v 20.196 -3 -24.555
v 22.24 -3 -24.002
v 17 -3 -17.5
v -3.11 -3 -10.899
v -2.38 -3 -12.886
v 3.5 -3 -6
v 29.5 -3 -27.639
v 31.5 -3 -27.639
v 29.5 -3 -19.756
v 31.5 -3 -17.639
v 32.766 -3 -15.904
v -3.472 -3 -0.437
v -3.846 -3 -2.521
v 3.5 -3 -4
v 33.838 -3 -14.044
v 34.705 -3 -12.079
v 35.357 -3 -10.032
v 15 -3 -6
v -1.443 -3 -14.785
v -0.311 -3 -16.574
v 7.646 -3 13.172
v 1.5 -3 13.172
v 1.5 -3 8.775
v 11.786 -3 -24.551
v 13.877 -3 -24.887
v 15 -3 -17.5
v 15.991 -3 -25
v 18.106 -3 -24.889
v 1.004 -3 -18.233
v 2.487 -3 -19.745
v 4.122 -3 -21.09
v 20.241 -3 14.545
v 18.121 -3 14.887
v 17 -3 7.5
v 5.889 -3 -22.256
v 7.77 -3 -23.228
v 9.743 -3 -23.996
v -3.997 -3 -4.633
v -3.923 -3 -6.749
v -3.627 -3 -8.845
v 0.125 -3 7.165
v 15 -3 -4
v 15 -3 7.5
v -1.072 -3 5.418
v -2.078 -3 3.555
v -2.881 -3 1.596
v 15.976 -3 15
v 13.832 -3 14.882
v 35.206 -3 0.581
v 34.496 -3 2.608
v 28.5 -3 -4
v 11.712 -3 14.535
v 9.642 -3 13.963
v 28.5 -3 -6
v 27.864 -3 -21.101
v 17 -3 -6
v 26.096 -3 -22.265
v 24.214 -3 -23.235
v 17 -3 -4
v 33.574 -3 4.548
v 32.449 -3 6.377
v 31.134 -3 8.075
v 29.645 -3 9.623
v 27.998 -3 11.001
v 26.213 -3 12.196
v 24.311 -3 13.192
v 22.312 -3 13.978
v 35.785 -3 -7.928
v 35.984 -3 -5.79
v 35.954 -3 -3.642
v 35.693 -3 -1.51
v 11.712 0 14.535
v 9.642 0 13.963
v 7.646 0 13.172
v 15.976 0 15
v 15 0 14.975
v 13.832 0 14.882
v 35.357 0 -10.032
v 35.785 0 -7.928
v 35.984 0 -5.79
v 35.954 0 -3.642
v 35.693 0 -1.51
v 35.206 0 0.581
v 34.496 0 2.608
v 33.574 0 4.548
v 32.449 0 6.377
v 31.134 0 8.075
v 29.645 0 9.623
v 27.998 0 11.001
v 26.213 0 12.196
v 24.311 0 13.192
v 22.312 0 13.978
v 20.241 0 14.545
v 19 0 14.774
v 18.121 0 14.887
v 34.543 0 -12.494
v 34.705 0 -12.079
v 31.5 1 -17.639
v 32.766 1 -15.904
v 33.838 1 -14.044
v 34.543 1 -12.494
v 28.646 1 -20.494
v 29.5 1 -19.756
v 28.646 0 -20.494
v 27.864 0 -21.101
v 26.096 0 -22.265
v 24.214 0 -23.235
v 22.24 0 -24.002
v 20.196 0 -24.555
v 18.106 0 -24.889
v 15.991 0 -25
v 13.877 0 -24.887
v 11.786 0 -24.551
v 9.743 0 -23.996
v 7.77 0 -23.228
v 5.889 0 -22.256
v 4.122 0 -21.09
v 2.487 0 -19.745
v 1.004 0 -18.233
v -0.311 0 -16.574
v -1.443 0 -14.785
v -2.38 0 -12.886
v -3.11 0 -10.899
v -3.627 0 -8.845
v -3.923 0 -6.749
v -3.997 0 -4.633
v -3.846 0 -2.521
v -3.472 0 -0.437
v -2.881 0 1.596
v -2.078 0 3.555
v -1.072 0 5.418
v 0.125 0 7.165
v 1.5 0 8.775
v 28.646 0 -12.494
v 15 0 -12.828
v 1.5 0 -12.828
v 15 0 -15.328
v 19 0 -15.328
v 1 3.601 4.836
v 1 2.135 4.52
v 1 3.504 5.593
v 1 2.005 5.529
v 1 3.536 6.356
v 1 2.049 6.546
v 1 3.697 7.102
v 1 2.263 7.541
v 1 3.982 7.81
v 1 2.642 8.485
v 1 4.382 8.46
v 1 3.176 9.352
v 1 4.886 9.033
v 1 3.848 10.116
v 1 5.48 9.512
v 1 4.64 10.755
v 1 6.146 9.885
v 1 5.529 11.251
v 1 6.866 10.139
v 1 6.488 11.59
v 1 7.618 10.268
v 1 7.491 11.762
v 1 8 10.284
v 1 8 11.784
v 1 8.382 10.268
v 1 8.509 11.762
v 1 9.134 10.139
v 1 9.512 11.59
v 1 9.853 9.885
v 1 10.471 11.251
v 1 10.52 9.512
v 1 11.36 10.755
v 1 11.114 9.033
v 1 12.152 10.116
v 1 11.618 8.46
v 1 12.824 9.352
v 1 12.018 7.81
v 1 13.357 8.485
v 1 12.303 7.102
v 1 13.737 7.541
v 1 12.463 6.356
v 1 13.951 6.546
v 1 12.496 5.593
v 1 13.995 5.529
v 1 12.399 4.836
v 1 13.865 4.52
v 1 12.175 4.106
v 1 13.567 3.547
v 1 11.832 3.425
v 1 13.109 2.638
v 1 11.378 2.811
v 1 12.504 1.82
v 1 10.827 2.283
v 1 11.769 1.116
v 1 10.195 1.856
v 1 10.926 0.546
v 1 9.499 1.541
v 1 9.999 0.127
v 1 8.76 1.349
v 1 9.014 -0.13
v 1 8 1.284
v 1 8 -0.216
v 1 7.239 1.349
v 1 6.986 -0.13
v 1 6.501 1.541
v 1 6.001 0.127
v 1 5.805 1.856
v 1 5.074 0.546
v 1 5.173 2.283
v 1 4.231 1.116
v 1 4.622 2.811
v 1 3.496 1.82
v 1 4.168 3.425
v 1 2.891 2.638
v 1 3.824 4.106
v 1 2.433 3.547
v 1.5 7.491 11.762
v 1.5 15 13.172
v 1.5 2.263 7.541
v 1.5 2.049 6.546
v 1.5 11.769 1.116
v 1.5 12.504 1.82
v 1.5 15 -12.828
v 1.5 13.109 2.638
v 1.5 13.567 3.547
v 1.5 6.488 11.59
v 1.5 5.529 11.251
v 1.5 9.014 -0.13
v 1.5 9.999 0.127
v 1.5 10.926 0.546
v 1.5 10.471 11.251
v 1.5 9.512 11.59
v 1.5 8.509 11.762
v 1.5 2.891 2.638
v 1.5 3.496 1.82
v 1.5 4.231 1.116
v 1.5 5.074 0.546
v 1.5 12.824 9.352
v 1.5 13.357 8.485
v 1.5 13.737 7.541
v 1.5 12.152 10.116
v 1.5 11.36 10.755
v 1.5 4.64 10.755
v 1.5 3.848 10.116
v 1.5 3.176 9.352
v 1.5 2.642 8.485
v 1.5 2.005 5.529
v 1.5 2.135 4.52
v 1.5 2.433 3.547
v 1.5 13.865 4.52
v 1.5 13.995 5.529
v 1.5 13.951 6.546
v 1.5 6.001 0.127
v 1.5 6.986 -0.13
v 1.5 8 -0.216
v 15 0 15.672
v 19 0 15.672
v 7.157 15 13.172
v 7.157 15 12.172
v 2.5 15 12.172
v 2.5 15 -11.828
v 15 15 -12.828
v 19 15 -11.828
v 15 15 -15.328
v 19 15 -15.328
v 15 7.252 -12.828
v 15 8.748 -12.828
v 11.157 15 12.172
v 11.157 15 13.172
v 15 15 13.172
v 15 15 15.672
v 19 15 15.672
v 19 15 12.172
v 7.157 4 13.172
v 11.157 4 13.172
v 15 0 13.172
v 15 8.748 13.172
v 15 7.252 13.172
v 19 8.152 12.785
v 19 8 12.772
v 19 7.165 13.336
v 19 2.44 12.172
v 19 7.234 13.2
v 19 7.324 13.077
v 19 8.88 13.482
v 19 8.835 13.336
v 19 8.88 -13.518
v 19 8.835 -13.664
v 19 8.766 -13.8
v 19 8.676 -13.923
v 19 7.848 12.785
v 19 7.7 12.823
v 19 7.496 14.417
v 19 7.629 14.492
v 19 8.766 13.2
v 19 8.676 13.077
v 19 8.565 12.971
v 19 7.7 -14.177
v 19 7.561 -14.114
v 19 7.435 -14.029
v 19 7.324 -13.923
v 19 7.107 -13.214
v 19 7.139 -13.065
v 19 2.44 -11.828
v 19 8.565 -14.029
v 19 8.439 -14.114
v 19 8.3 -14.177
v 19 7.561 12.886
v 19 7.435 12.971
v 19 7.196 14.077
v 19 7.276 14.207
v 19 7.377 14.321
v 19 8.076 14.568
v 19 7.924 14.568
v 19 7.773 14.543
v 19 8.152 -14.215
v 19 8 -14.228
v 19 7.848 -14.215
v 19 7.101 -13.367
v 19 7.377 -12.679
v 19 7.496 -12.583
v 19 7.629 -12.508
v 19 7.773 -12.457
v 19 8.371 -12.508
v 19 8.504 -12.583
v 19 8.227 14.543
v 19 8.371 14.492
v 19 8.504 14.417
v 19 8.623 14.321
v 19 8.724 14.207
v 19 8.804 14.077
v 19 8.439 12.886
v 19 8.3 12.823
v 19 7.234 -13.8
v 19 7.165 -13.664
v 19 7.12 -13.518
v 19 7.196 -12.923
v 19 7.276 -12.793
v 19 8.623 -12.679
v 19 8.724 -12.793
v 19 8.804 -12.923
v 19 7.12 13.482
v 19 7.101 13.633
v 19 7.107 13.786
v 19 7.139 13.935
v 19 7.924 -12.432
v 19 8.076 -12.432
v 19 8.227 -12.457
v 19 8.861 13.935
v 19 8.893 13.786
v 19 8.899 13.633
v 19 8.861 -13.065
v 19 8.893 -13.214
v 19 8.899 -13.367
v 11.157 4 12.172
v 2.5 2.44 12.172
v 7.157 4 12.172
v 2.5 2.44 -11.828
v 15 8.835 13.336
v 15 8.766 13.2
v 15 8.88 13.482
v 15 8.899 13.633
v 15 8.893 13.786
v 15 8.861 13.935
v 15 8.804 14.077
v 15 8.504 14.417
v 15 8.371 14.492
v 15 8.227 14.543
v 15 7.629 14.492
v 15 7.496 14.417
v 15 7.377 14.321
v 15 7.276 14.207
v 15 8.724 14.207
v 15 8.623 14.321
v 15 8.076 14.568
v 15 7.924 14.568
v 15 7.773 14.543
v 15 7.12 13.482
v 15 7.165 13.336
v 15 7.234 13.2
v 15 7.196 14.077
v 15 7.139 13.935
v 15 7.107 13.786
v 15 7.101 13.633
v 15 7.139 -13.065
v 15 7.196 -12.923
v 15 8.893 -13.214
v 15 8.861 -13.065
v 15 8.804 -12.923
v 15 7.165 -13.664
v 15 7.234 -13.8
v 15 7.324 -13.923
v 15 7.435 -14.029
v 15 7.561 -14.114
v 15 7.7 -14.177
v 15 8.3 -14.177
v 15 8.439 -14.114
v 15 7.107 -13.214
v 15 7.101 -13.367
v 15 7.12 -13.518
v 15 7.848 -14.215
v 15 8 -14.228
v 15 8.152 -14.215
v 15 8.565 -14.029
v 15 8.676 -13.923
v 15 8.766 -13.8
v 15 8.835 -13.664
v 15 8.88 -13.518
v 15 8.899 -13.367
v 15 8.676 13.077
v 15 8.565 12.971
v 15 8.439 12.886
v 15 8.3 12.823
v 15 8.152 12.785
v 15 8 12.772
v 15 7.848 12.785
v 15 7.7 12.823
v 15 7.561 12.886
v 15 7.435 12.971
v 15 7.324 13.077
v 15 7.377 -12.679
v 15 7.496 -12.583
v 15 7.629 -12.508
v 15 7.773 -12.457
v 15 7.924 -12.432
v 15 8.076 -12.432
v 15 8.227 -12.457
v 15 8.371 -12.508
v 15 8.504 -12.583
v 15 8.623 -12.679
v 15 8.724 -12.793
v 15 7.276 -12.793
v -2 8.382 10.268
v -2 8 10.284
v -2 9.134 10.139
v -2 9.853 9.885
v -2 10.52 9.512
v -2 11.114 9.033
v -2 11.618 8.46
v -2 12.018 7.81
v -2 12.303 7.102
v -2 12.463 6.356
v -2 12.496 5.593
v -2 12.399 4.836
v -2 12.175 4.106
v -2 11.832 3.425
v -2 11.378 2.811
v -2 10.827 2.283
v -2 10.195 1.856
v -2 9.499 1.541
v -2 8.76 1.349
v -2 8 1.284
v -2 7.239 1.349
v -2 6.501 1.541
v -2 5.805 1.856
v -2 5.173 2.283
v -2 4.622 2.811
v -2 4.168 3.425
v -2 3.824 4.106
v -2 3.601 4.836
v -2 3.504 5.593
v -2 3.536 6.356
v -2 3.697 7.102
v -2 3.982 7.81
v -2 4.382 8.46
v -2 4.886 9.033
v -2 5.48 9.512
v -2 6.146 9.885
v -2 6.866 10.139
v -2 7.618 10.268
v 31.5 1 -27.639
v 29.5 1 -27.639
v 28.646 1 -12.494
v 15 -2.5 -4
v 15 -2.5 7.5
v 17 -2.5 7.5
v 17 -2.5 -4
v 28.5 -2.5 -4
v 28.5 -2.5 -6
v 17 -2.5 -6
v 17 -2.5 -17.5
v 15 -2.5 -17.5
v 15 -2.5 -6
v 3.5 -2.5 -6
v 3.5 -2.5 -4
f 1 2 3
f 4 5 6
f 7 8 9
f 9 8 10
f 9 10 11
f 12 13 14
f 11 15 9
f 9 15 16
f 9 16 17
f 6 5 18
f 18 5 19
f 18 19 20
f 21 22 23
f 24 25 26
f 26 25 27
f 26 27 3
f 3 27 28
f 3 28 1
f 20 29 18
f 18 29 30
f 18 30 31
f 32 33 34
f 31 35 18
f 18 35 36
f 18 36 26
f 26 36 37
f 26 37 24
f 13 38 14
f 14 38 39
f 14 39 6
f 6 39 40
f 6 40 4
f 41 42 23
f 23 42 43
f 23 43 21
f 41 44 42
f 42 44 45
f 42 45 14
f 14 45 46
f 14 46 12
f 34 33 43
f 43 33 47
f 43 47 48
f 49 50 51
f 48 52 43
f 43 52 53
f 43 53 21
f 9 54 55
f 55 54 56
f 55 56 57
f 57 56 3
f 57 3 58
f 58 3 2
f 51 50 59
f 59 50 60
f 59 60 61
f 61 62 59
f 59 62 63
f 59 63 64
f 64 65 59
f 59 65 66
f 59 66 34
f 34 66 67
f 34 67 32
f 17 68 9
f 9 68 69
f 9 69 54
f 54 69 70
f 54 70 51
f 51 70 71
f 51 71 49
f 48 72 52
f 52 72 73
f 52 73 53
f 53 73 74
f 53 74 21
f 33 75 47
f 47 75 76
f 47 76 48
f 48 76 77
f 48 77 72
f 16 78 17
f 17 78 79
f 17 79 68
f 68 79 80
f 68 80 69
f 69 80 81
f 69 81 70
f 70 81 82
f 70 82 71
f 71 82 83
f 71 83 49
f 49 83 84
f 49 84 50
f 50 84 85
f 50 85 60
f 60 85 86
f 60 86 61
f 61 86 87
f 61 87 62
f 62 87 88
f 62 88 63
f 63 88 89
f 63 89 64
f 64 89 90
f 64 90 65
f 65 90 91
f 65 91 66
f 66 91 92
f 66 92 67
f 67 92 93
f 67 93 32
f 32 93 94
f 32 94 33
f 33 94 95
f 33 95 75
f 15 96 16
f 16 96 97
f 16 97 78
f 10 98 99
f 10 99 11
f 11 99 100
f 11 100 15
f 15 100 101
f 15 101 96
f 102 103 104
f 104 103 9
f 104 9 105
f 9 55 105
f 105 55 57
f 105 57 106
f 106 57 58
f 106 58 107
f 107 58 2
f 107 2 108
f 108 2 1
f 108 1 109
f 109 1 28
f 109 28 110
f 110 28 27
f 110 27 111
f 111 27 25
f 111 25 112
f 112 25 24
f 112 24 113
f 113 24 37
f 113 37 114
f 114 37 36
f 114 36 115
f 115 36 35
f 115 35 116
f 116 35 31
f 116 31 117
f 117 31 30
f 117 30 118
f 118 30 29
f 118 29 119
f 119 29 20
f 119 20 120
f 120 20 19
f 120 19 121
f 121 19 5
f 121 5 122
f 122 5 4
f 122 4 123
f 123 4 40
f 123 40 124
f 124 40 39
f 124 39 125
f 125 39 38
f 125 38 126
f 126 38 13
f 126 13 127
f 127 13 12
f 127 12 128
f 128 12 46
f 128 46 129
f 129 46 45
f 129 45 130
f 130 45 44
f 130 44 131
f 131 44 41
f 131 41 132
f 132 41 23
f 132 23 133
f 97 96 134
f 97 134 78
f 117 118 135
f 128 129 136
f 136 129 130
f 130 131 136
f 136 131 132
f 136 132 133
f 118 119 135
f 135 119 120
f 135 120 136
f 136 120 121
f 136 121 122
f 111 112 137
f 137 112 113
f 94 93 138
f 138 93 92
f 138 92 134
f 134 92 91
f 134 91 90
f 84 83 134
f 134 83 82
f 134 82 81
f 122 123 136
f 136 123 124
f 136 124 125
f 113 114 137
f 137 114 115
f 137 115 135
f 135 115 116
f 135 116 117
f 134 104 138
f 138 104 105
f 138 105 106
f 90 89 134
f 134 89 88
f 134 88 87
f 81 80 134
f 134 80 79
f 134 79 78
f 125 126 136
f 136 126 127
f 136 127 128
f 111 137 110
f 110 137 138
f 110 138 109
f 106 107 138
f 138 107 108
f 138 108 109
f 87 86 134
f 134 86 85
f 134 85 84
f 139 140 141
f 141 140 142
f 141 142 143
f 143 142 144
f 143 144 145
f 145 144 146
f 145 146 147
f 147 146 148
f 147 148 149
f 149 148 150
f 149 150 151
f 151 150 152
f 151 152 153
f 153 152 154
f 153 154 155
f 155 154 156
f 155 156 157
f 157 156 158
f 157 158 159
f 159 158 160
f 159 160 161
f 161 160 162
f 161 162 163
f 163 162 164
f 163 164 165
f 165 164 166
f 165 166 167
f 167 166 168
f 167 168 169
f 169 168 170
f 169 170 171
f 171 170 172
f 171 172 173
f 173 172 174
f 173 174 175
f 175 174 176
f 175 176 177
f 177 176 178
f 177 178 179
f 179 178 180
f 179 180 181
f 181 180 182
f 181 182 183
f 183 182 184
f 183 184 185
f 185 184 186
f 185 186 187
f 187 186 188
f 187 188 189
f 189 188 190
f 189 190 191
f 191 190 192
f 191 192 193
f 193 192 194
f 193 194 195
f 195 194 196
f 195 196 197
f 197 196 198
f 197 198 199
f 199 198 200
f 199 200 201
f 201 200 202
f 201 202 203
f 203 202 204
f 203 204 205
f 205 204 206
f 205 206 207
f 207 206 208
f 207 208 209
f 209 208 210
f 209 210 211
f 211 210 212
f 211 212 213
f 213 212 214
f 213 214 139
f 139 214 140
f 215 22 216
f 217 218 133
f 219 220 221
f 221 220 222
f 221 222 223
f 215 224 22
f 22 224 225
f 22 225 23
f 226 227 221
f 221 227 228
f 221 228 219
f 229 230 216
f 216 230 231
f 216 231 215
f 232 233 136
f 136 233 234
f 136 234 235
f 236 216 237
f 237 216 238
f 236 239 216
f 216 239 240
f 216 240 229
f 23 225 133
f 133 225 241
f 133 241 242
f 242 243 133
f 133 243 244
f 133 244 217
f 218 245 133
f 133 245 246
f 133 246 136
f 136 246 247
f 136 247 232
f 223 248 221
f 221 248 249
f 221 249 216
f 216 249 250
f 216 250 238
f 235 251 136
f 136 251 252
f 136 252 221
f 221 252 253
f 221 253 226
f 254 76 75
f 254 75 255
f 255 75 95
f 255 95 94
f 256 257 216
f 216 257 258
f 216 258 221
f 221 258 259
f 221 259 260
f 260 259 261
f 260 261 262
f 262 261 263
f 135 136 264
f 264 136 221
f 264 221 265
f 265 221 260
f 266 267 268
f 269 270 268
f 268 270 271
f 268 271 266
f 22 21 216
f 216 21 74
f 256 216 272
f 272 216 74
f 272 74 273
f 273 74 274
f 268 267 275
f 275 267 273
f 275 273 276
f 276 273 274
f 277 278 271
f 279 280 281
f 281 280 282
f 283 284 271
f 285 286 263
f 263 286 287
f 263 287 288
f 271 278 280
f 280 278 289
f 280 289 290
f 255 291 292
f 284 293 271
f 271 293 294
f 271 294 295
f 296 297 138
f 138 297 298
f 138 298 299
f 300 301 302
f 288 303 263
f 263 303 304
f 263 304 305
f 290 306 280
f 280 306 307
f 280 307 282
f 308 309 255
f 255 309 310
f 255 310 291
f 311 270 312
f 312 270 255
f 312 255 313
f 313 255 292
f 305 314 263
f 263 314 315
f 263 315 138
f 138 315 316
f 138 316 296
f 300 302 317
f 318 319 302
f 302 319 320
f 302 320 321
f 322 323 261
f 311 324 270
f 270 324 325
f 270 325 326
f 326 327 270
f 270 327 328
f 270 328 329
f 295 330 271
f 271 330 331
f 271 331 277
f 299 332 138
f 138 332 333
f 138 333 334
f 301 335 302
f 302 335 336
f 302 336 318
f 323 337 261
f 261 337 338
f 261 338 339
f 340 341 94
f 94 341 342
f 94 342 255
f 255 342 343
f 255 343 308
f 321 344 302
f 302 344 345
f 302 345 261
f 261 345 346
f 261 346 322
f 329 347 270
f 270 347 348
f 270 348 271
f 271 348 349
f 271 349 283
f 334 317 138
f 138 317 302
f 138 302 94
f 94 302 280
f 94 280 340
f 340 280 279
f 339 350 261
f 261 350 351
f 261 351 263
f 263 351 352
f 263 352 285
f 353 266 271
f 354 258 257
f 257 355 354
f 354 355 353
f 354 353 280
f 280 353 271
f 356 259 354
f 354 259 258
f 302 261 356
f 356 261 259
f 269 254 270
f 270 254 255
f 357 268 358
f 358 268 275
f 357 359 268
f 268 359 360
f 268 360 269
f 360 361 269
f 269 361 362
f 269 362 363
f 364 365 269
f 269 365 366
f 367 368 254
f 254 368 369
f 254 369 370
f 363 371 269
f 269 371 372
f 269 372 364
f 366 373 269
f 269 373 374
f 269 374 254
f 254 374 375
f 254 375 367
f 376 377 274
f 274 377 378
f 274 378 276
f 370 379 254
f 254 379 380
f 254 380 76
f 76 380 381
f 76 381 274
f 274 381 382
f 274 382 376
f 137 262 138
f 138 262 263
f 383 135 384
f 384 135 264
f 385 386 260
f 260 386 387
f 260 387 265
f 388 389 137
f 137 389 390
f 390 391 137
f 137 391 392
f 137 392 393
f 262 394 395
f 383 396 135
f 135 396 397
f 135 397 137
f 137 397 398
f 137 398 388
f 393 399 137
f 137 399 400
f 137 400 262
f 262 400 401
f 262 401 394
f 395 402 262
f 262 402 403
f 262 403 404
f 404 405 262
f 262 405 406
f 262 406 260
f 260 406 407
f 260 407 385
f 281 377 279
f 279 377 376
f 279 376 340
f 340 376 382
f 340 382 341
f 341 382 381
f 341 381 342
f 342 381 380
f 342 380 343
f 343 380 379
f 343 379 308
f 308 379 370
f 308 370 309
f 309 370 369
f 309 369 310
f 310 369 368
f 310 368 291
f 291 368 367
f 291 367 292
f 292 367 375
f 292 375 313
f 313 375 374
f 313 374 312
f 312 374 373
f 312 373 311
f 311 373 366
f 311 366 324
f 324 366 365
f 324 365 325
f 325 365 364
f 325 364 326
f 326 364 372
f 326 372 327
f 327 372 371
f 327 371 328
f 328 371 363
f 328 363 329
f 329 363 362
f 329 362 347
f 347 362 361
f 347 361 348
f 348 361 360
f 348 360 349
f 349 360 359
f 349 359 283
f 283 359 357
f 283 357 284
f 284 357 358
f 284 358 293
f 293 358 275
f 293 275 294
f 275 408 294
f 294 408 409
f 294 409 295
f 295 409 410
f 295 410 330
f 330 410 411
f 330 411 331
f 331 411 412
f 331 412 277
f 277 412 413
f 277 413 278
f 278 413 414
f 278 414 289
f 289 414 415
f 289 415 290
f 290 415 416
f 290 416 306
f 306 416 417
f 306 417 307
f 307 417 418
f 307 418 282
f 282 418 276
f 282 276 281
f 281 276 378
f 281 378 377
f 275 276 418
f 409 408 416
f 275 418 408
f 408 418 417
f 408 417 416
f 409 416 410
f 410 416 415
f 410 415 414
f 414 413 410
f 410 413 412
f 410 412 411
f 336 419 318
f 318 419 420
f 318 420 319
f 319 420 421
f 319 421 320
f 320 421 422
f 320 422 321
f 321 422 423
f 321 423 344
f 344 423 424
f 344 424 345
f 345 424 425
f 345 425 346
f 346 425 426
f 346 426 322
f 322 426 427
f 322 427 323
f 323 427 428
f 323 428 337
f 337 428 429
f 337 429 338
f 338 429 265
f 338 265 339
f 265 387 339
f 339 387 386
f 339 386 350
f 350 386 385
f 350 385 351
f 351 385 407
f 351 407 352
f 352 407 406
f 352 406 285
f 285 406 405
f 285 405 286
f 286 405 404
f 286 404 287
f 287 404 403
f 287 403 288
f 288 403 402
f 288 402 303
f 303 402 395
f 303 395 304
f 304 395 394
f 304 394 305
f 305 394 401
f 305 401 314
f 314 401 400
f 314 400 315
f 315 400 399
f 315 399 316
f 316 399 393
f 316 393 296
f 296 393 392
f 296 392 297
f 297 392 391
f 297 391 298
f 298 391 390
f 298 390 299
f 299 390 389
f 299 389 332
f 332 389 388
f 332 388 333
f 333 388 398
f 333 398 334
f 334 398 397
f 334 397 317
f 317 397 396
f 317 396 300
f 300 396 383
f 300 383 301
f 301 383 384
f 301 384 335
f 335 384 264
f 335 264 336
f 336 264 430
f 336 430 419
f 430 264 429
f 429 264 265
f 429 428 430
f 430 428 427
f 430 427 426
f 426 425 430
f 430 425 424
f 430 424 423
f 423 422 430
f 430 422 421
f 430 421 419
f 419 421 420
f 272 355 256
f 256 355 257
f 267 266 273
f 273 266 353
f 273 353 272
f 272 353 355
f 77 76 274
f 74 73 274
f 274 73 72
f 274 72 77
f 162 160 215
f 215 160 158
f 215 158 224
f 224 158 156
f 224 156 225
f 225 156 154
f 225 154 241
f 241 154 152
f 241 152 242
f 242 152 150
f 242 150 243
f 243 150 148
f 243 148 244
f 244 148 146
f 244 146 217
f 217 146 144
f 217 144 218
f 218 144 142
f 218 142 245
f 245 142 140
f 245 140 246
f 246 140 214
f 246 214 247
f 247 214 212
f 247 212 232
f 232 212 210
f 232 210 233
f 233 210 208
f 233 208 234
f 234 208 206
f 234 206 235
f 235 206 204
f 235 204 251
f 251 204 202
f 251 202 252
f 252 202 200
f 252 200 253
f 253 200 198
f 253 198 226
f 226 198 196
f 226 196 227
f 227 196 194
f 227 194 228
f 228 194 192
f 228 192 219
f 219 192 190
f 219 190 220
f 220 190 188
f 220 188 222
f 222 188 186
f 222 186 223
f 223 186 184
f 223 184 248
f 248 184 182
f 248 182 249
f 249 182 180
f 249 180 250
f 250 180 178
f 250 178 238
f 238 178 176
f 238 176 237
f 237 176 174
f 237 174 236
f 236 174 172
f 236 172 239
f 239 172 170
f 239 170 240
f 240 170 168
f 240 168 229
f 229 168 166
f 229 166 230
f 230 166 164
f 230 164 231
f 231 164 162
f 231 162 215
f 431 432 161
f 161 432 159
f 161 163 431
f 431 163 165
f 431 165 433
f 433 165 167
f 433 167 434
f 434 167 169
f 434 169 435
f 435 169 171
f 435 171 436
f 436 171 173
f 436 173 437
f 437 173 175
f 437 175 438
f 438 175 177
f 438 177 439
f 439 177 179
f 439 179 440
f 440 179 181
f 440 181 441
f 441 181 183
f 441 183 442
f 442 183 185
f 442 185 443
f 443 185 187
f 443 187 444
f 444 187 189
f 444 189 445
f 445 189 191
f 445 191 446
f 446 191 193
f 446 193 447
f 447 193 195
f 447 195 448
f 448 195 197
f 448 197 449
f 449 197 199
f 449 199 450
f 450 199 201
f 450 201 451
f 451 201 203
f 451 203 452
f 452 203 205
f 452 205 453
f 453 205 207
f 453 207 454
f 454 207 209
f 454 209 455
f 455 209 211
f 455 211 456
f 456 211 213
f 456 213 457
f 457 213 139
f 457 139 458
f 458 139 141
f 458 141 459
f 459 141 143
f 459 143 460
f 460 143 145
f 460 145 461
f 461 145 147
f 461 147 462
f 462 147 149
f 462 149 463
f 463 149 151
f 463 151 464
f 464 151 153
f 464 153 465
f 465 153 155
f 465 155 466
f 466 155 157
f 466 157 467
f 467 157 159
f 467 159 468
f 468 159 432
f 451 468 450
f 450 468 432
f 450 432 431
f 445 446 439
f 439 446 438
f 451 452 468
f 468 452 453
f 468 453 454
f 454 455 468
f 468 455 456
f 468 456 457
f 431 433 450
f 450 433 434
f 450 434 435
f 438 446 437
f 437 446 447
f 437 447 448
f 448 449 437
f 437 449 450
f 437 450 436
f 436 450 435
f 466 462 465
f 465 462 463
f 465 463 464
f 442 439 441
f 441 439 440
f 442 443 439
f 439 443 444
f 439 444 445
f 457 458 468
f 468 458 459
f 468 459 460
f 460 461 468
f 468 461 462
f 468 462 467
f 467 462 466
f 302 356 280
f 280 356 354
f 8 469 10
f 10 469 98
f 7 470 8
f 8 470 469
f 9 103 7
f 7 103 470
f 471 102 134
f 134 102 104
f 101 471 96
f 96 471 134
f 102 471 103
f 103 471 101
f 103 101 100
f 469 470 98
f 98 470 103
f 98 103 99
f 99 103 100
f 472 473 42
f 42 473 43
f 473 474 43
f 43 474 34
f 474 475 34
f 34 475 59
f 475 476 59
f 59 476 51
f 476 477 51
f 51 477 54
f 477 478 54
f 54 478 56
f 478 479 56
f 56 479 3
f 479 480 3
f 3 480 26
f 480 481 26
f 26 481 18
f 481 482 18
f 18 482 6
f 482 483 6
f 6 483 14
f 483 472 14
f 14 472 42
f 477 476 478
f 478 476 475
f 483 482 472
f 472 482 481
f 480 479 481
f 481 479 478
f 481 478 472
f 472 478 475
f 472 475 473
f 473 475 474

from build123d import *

# Parameters (mm, degrees)
P_IDAT_VYSUNUT_M1_DEPTH   = 15
ZAOBLIT1_R                = 7.5
SKICA6_R                  = 3.75
ODEBRAT_VYSUNUT_M4_DEPTH  = 5
SKICA7_R                  = 4.75
ODEBRAT_VYSUNUT_M5_DEPTH  = 5
P_IDAT_VYSUNUT_M2_DEPTH   = 15
SKICA10_W                 = 16.5
SKICA10_H                 = 24
ODEBRAT_VYSUNUT_M7_DEPTH  = 14
SKICA11_W                 = 2.5
SKICA11_H                 = 15
P_IDAT_VYSUNUT_M3_DEPTH   = 4
SKICA12_R                 = 0.9
ODEBRAT_VYSUNUT_M8_DEPTH  = 4
SKICA13_W                 = 4
SKICA13_H                 = 11
ODEBRAT_VYSUNUT_M9_DEPTH  = 4
SKICA15_W                 = 30.75
SKICA15_H                 = 32.5
ODEBRAT_VYSUNUT_M10_DEPTH = 30
SKICA16_R                 = 20
P_IDAT_VYSUNUT_M4_DEPTH   = 3
SKICA17_W                 = 1
SKICA17_H                 = 28
ODEBRAT_VYSUNUT_M11_DEPTH = 15
SKICA18_R                 = 6
P_IDAT_VYSUNUT_M5_DEPTH   = 0.5
SKICA19_R                 = 4.5
P_IDAT_VYSUNUT_M6_DEPTH   = 3
SKICA20_W                 = 16.5
SKICA20_H                 = 24
P_IDAT_VYSUNUT_M7_DEPTH   = 1.44
P_IDAT_VYSUNUT_M8_DEPTH   = 3
P_IDAT_START              = 1
P_IDAT_VYSUNUT_M9_DEPTH   = 1
P_IDAT_VYSUNUT_M10_DEPTH  = 3
SKICA24_R                 = 1
ODEBRAT_VYSUNUT_M12_DEPTH = 0.5
ODEBRAT_VYSUNUT_M14_DEPTH = 0.5


with BuildPart() as part:
    # Skica1 → Přidat vysunutím1 (new body)
    with BuildSketch(Plane(origin=(0, 0, 0), x_dir=(1, 0, 0), z_dir=(0, 1, 0))):
        Polygon((0, -11), (0, 11), (-3.25, 14.25), (-30.25, 14.25), (-30.25, 16.25), (-2.421572875, 16.25), (1, 12.828427125), (1, -12.828427125), (-2.421572875, -16.25), (-30.25, -16.25), (-30.25, -14.25), (-3.25, -14.25), align=None)
    extrude(amount=P_IDAT_VYSUNUT_M1_DEPTH)

    # Zaoblit1
    zaoblit1_edges = [part.edges().sort_by_distance(p)[0] for p in [
        (-30.25, 0, -15.25),
        (-30.25, 0, 15.25),
        (-30.25, 15, 15.25),
        (-30.25, 15, -15.25),
    ]]
    fillet(zaoblit1_edges, radius=ZAOBLIT1_R - 0.0001)  # a hair under: the kernel refuses the full size

    # Skica6 → Odebrat vysunutím4 (cut)
    with BuildSketch(Plane(origin=(0, 0, -16.25), x_dir=(-1, 0, 0), z_dir=(0, 0, -1))):
        with Locations((22.75, 7.5)):
            Circle(SKICA6_R)
    extrude(amount=-ODEBRAT_VYSUNUT_M4_DEPTH, mode=Mode.SUBTRACT)

    # Skica7 → Odebrat vysunutím5 (cut)
    with BuildSketch(Plane(origin=(0, 0, 14.25), x_dir=(-1, 0, 0), z_dir=(0, 0, -1))):
        with Locations((22.75, 7.5)):
            Circle(SKICA7_R)
    extrude(amount=-ODEBRAT_VYSUNUT_M5_DEPTH, mode=Mode.SUBTRACT)

    # Skica8 → Přidat vysunutím2 (add)
    with BuildSketch(Plane.XZ):
        Polygon((0.656854249, 13.171572875), (19, 13.171572875), (19, -12.828427125), (1, -12.828427125), (1, 12.828427125), align=None)
    extrude(amount=-P_IDAT_VYSUNUT_M2_DEPTH)

    # Skica10 → Odebrat vysunutím7 (cut)
    with BuildSketch(Plane(origin=(0, 15, 0), x_dir=(1, 0, 0), z_dir=(0, 1, 0))):
        with Locations((10.75, -0.171572875)):
            Rectangle(SKICA10_W, SKICA10_H)
    extrude(amount=-ODEBRAT_VYSUNUT_M7_DEPTH, mode=Mode.SUBTRACT)

    # Skica11 → Přidat vysunutím3 (add)
    with BuildSketch(Plane(origin=(19, 0, 0), x_dir=(0, 0, -1), z_dir=(1, 0, 0))):
        with Locations((-14.421572875, 7.5)):
            Rectangle(SKICA11_W, SKICA11_H)
        with Locations((14.078427125, 7.5)):
            Rectangle(SKICA11_W, SKICA11_H)
    extrude(amount=-P_IDAT_VYSUNUT_M3_DEPTH)

    # Skica12 → Odebrat vysunutím8 (cut)
    with BuildSketch(Plane(origin=(19, 0, 0), x_dir=(0, 0, -1), z_dir=(1, 0, 0))):
        with Locations((-13.671572875, 8)):
            Circle(SKICA12_R)
        with Locations((13.328427125, 8)):
            Circle(SKICA12_R)
    extrude(amount=-ODEBRAT_VYSUNUT_M8_DEPTH, mode=Mode.SUBTRACT)

    # Skica13 → Odebrat vysunutím9 (cut)
    with BuildSketch(Plane.XY.offset(13.171572875)):
        with Locations((9.156854249, 9.5)):
            Rectangle(SKICA13_W, SKICA13_H)
    extrude(amount=-ODEBRAT_VYSUNUT_M9_DEPTH, mode=Mode.SUBTRACT)

    # Skica15 → Odebrat vysunutím10 (cut)
    with BuildSketch(Plane(origin=(0, 15, 0), x_dir=(1, 0, 0), z_dir=(0, 1, 0))):
        with Locations((-14.875, 0)):
            Rectangle(SKICA15_W, SKICA15_H)
    extrude(amount=-ODEBRAT_VYSUNUT_M10_DEPTH, mode=Mode.SUBTRACT)

    # Skica16 → Přidat vysunutím4 (add)
    with BuildSketch(Plane.XZ):
        with Locations(Location((16, -5, 0), (0, 0, 92.865983983))):
            Circle(SKICA16_R)
    extrude(amount=P_IDAT_VYSUNUT_M4_DEPTH)

    # Skica17 → Odebrat vysunutím11 (cut)
    with BuildSketch(Plane(origin=(0, 15, 0), x_dir=(1, 0, 0), z_dir=(0, 1, 0))):
        with Locations((1, -0.671572875)):
            Rectangle(SKICA17_W, SKICA17_H)
    extrude(amount=-ODEBRAT_VYSUNUT_M11_DEPTH, mode=Mode.SUBTRACT)

    # Skica18 → Přidat vysunutím5 (add)
    with BuildSketch(Plane.ZY.offset(-1.5)):
        with Locations(Location((5.784090316, 7.999938585, 0), (0, 0, 180))):
            Circle(SKICA18_R)
    extrude(amount=P_IDAT_VYSUNUT_M5_DEPTH)

    # Skica19 → Přidat vysunutím6 (add)
    with BuildSketch(Plane.ZY.offset(-1)):
        with Locations((5.784090316, 7.999938585)):
            Circle(SKICA19_R)
    extrude(amount=P_IDAT_VYSUNUT_M6_DEPTH)

    # Skica20 → Přidat vysunutím7 (add)
    with BuildSketch(Plane(origin=(0, 1, 0), x_dir=(1, 0, 0), z_dir=(0, 1, 0))):
        with Locations((10.75, -0.171572875)):
            Rectangle(SKICA20_W, SKICA20_H)
    extrude(amount=P_IDAT_VYSUNUT_M7_DEPTH)

    # Skica21 → Přidat vysunutím8 (add)
    with BuildSketch(Plane(origin=(0, 0, 0), x_dir=(1, 0, 0), z_dir=(0, 1, 0))):
        with BuildLine():
            Line((29.5, 27.63922466), (31.5, 27.63922466))
            Line((31.5, 27.63922466), (31.5, 17.63922466))
            ThreePointArc((31.5, 17.63922466), (30.538588644, 18.734243344), (29.5, 19.756354563))
            Line((29.5, 19.756354563), (29.5, 27.63922466))
        make_face()
    extrude(amount=-P_IDAT_VYSUNUT_M8_DEPTH)

    # Skica22 → Přidat vysunutím9 (add)
    with BuildSketch(Plane(origin=(0, 0, 0), x_dir=(1, 0, 0), z_dir=(0, 1, 0)).offset(P_IDAT_START)):
        with BuildLine():
            Line((29.5, 27.63922466), (31.5, 27.63922466))
            Line((31.5, 27.63922466), (31.5, 17.63922466))
            ThreePointArc((31.5, 17.63922466), (33.214733837, 15.181008738), (34.542861865, 12.494149308))
            Line((34.542861865, 12.494149308), (28.646396214, 12.494149308))
            Line((28.646396214, 12.494149308), (28.646396214, 20.494149308))
            ThreePointArc((28.646396214, 20.494149308), (29.078401814, 20.131272451), (29.5, 19.756354563))
            Line((29.5, 19.756354563), (29.5, 27.63922466))
        make_face()
    extrude(amount=-P_IDAT_VYSUNUT_M9_DEPTH)

    # Skica23 → Přidat vysunutím10 (add)
    with BuildSketch(Plane.XZ):
        with BuildLine():
            Line((1.5, 8.774977314), (1.5, 13.171572875))
            Line((1.5, 13.171572875), (7.645723296, 13.171572875))
            ThreePointArc((7.645723296, 13.171572875), (4.363333637, 11.26616107), (1.5, 8.774977314))
        make_face()
    extrude(amount=P_IDAT_VYSUNUT_M10_DEPTH)

    # Skica24 → Odebrat vysunutím12 (cut)
    with BuildSketch(Plane.XZ.offset(3)):
        with Locations(Location((16, -5, 0), (0, 0, 270))):
            Circle(SKICA24_R)
    extrude(amount=-ODEBRAT_VYSUNUT_M12_DEPTH, mode=Mode.SUBTRACT)

    # Skica25 → Odebrat vysunutím14 (cut)
    with BuildSketch(Plane.XZ.offset(3)):
        Polygon((15, 7.5), (15, -4), (16, -4), (17, -4), (17, 7.5), align=None)
        Polygon((3.5, -6), (15, -6), (15, -5.000000001), (15, -4), (3.5, -4), align=None)
        Polygon((17, -5), (17, -6), (28.5, -6), (28.5, -4), (17, -4), align=None)
        Polygon((15, -6), (15, -17.5), (17, -17.5), (17, -6), (16, -6), align=None)
        with BuildLine():
            Line((15, -4), (15, -5.000000001))
            ThreePointArc((15, -5.000000001), (15.292893218, -4.292893219), (16, -4))
            Line((16, -4), (15, -4))
        make_face()
        with BuildLine():
            ThreePointArc((16, -4), (16.707106781, -4.292893219), (17, -5))
            Line((17, -5), (17, -4))
            Line((17, -4), (16, -4))
        make_face()
        with BuildLine():
            Line((16, -6), (17, -6))
            Line((17, -6), (17, -5))
            ThreePointArc((17, -5), (16.707106781, -5.707106781), (16, -6))
        make_face()
        with BuildLine():
            Line((15, -5.000000001), (15, -6))
            Line((15, -6), (16, -6))
            ThreePointArc((16, -6), (15.292893219, -5.707106782), (15, -5.000000001))
        make_face()
    extrude(amount=-ODEBRAT_VYSUNUT_M14_DEPTH, mode=Mode.SUBTRACT)


solid = part.part
